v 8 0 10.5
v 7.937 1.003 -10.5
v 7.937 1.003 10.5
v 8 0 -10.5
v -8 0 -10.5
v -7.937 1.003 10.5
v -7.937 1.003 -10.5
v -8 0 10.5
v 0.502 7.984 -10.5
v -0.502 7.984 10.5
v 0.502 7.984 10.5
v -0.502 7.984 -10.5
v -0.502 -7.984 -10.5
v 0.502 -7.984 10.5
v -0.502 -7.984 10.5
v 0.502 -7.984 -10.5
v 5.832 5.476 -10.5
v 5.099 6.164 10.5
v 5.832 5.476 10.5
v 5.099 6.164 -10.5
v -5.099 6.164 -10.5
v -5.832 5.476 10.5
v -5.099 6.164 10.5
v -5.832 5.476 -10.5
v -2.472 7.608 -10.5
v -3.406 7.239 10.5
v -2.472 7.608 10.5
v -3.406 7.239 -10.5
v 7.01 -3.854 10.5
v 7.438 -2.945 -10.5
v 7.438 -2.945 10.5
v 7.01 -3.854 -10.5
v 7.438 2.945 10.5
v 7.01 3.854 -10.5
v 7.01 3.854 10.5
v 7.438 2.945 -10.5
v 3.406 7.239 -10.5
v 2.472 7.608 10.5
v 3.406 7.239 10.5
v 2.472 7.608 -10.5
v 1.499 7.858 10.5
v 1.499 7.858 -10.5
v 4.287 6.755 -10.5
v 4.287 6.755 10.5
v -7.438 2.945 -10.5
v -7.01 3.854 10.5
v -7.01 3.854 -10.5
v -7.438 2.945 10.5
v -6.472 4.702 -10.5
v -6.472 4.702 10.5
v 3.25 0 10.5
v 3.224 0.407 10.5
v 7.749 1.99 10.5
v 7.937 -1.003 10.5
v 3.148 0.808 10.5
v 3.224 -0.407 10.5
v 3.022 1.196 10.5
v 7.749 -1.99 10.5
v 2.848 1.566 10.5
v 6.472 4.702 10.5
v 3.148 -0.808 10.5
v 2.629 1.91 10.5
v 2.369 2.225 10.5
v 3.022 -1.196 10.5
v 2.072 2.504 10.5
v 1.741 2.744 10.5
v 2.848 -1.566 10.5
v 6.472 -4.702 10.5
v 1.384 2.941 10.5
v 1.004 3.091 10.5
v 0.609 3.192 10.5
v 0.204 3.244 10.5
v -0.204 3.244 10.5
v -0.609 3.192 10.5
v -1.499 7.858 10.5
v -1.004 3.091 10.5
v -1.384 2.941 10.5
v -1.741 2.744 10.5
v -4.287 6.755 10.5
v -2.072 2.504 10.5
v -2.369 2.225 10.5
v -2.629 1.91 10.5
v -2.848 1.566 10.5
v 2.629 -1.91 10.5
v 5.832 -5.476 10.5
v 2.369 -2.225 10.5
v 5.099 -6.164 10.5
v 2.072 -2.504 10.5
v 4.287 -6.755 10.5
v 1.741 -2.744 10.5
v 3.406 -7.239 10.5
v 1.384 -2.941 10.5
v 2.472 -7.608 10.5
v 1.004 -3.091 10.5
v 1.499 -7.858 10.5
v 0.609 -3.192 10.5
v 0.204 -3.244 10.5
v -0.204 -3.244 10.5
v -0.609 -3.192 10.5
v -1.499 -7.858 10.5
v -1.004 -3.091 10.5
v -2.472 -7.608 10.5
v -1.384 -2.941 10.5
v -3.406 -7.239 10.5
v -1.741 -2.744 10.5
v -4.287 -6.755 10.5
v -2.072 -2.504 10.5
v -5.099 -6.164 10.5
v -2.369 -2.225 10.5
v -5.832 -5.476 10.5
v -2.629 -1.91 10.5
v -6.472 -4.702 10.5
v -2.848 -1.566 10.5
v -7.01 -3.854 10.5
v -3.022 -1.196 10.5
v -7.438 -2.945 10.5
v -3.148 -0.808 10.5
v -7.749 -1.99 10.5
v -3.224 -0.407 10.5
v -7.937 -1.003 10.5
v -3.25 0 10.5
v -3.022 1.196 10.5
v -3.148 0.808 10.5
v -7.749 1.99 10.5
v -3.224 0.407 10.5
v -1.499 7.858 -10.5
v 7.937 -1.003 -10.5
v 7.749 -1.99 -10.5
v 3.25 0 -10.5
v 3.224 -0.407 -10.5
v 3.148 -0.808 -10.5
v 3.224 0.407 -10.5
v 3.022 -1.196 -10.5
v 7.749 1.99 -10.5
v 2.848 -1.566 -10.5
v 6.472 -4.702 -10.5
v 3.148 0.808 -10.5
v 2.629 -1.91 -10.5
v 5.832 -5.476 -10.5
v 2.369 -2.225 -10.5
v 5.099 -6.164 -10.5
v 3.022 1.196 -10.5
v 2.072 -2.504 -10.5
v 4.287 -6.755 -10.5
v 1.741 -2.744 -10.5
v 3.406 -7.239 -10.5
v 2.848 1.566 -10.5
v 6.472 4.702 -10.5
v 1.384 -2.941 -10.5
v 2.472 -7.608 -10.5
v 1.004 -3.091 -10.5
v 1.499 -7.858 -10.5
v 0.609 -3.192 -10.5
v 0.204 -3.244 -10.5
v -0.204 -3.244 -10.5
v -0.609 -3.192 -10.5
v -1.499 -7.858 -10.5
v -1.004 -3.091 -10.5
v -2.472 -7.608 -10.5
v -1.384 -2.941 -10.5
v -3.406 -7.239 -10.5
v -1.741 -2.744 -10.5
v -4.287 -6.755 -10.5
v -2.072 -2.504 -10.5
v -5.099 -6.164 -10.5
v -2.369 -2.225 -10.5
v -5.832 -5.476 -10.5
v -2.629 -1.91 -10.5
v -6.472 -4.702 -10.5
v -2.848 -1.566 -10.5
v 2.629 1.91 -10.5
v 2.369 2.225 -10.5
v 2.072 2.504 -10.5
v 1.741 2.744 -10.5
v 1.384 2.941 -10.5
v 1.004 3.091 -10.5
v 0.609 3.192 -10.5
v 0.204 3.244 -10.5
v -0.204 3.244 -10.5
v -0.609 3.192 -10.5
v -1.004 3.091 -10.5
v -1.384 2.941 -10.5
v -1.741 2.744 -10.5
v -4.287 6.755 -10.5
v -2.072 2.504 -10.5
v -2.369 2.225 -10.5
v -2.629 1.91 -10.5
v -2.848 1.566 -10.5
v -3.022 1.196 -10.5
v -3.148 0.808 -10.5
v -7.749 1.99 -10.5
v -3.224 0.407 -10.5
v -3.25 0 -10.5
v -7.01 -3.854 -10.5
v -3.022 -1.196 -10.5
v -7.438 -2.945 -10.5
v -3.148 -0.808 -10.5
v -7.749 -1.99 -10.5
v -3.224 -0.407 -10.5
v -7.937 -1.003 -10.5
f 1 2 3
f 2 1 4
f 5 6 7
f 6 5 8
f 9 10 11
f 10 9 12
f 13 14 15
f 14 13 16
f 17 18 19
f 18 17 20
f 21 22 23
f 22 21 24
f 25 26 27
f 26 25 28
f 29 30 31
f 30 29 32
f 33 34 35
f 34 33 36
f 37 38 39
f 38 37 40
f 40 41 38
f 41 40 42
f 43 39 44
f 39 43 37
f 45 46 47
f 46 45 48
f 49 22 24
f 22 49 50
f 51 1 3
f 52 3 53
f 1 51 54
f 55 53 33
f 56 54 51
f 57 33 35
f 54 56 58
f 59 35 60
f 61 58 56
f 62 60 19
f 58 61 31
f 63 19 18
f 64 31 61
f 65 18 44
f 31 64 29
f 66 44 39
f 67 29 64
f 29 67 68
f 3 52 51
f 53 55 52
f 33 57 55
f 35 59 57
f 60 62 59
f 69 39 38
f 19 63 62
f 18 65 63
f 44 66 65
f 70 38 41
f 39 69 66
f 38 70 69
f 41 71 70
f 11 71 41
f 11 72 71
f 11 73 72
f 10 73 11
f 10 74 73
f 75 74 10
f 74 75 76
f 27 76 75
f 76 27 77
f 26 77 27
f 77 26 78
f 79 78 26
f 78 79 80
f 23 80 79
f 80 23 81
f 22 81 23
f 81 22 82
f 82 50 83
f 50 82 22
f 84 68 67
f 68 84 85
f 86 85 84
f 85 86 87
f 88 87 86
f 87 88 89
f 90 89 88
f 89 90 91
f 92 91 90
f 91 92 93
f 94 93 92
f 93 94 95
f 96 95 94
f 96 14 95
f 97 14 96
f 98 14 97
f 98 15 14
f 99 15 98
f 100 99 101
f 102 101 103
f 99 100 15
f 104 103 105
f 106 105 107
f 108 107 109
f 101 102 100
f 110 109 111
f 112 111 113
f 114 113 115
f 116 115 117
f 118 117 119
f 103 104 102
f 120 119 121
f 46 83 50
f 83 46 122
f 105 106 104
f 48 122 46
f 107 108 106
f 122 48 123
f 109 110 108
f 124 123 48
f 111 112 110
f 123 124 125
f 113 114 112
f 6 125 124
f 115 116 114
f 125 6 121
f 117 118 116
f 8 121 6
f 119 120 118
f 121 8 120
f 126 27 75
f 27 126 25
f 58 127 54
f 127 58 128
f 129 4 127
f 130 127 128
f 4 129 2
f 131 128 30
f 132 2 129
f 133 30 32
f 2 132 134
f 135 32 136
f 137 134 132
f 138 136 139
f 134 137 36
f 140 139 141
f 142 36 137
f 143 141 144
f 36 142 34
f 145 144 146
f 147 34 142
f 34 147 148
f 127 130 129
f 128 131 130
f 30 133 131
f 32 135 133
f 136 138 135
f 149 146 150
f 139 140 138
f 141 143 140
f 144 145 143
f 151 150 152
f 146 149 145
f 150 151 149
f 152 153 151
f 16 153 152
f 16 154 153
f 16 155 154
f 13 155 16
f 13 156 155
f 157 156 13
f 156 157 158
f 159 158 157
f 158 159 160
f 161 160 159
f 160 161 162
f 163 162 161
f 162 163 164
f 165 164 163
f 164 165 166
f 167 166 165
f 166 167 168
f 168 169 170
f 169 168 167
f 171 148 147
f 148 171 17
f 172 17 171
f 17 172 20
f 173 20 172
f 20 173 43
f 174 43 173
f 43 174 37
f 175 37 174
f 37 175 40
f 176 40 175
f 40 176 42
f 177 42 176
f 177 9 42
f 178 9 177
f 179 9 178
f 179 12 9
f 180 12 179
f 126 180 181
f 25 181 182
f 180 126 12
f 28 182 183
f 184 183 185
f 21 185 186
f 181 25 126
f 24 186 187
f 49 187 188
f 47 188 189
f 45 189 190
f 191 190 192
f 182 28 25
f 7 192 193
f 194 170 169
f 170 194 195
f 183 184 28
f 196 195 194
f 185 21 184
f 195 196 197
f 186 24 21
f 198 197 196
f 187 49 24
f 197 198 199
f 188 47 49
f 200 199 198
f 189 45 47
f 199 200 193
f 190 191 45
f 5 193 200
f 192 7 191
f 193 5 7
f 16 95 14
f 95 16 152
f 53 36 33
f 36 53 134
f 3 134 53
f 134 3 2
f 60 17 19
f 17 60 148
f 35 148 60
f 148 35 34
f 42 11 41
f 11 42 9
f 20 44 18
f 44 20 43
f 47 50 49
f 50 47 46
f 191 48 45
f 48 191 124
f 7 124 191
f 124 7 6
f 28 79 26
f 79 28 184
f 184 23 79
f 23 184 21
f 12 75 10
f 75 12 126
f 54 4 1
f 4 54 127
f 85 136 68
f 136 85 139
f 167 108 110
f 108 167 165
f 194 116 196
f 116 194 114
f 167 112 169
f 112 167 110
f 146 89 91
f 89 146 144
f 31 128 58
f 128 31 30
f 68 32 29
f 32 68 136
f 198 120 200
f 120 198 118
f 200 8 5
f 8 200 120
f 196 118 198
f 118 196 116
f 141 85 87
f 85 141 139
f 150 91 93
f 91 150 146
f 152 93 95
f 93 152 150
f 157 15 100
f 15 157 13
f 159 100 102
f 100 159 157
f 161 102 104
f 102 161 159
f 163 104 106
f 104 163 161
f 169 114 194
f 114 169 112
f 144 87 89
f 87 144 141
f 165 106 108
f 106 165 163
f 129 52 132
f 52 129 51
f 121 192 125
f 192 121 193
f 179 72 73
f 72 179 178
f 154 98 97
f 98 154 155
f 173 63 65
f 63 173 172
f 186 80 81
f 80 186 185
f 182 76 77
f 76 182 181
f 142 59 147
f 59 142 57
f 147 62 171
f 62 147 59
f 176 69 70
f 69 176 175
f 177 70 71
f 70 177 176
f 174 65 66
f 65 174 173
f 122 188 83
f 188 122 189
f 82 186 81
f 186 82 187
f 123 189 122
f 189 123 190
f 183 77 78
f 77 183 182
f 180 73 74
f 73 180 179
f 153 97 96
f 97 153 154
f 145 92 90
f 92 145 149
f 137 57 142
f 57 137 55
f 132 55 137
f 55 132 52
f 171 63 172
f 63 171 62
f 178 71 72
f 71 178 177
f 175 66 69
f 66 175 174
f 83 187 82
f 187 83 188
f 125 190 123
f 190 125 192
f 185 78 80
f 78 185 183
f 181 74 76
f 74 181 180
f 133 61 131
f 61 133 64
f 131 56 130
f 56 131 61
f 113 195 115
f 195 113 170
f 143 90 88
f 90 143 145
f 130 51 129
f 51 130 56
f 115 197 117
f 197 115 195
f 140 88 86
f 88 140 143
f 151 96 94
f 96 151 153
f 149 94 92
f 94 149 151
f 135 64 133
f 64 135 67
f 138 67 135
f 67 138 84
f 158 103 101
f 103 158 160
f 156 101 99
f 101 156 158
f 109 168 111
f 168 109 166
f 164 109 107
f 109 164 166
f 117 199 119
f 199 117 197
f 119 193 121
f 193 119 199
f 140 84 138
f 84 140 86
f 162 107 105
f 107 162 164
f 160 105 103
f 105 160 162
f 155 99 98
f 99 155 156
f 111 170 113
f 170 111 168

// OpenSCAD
$fn = 50;


difference() {
	union() {
		translate(v = [0, 0, -10.5000000000]) {
			cylinder(h = 21, r = 8.0000000000);
		}
	}
	union() {
		translate(v = [0, 0, -100.0000000000]) {
			cylinder(h = 200, r = 3.2500000000);
		}
	}
}
